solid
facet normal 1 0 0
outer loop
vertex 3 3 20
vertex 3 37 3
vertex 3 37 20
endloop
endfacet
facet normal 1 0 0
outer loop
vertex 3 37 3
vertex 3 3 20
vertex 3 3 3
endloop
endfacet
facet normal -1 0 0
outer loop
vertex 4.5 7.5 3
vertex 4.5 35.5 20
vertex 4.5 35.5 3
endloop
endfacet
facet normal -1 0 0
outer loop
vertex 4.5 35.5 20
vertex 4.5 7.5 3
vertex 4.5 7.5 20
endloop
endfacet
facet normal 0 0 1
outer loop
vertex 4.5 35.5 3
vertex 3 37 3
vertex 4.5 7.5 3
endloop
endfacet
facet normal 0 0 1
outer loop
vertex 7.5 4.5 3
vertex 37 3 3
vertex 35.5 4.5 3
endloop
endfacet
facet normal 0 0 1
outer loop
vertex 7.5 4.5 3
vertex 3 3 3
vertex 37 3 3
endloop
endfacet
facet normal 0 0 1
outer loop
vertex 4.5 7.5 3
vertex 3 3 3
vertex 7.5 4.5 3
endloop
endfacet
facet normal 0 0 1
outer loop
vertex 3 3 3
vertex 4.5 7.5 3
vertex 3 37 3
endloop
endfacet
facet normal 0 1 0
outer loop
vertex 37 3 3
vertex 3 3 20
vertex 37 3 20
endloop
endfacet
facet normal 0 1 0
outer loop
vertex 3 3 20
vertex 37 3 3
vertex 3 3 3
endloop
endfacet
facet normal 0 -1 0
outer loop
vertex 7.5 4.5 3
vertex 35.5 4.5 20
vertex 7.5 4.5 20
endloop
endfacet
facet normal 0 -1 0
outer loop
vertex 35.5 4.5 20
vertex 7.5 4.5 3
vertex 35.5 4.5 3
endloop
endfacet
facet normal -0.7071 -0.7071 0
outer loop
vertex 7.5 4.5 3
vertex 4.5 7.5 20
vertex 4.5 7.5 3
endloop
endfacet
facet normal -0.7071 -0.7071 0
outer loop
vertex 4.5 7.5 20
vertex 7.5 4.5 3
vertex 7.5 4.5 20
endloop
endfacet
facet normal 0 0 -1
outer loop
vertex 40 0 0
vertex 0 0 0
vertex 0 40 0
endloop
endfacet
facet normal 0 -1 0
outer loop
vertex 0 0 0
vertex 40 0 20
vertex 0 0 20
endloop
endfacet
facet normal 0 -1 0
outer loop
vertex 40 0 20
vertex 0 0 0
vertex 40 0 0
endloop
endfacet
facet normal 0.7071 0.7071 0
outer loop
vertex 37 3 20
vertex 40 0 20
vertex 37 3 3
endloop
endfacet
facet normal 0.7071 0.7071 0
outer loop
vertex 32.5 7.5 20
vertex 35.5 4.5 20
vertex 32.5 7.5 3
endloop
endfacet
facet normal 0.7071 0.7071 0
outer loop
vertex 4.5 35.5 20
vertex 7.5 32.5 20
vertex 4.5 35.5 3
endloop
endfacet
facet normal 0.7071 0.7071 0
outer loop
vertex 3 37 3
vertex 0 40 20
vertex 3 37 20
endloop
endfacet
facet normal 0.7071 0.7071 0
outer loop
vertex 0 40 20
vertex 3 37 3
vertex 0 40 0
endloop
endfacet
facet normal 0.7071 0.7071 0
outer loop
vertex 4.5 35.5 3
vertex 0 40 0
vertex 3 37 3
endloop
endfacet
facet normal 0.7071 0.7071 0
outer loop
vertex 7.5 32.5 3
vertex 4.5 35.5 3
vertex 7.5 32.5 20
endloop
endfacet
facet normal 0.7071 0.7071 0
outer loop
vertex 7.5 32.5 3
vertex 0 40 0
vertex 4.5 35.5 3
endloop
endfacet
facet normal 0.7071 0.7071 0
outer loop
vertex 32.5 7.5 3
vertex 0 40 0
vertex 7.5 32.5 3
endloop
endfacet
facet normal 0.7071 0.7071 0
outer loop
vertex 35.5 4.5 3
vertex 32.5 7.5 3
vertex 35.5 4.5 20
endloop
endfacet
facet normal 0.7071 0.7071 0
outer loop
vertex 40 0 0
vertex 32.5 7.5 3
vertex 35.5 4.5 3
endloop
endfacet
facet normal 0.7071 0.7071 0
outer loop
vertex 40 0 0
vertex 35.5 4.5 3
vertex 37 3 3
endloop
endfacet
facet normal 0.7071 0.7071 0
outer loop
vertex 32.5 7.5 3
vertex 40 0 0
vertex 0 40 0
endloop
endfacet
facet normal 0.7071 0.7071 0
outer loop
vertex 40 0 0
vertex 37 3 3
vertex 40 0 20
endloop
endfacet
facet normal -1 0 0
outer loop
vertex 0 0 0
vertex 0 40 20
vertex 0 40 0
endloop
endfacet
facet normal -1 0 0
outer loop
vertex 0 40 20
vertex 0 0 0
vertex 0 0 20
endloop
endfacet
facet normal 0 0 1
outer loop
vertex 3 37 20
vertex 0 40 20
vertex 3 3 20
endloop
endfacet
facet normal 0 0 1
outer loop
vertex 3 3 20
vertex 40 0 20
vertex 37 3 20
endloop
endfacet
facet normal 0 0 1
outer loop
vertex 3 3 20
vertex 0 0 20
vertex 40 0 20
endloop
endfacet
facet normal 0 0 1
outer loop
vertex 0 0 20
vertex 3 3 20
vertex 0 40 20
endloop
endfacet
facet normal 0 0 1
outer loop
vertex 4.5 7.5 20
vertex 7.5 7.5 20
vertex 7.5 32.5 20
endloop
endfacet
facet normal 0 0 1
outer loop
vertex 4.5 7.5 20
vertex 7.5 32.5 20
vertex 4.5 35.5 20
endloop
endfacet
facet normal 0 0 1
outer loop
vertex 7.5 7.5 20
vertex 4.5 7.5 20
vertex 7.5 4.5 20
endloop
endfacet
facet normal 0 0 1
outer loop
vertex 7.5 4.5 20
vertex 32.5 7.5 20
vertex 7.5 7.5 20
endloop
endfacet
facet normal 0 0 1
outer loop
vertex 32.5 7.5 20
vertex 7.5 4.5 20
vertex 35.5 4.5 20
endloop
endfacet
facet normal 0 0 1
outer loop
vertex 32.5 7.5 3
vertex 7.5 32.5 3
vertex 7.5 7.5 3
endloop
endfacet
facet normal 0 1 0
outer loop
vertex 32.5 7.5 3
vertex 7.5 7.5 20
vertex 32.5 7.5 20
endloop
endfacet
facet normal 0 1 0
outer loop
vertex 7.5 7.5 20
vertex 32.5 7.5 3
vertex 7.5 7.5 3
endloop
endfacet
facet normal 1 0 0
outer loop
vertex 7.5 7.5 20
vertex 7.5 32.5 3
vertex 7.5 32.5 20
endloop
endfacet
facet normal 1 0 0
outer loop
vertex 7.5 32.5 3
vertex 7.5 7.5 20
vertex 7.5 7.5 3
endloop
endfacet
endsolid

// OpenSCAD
corner(40,1.5,3,20);


module corner(width, sheet, thickness, height) {
    difference() {
        triangle(width, width, height);
        translate([thickness, thickness, thickness]) { // slots
            cube([sheet,width,height]);
            cube([width,sheet,height]);
            triangle(sheet*4, sheet*4, height);
        }
        { // extra material removal
            total_thickness=2*thickness+sheet;
            translate([total_thickness,total_thickness,thickness]) triangle(width, width, height);
        }
    }
}

module triangle(o_len, a_len, depth, center=false)
{
    centroid = center ? [-a_len/3, -o_len/3, -depth/2] : [0, 0, 0];
    translate(centroid) linear_extrude(height=depth)
    {
        polygon(points=[[0,0],[a_len,0],[0,o_len]], paths=[[0,1,2]]);
    }
}
